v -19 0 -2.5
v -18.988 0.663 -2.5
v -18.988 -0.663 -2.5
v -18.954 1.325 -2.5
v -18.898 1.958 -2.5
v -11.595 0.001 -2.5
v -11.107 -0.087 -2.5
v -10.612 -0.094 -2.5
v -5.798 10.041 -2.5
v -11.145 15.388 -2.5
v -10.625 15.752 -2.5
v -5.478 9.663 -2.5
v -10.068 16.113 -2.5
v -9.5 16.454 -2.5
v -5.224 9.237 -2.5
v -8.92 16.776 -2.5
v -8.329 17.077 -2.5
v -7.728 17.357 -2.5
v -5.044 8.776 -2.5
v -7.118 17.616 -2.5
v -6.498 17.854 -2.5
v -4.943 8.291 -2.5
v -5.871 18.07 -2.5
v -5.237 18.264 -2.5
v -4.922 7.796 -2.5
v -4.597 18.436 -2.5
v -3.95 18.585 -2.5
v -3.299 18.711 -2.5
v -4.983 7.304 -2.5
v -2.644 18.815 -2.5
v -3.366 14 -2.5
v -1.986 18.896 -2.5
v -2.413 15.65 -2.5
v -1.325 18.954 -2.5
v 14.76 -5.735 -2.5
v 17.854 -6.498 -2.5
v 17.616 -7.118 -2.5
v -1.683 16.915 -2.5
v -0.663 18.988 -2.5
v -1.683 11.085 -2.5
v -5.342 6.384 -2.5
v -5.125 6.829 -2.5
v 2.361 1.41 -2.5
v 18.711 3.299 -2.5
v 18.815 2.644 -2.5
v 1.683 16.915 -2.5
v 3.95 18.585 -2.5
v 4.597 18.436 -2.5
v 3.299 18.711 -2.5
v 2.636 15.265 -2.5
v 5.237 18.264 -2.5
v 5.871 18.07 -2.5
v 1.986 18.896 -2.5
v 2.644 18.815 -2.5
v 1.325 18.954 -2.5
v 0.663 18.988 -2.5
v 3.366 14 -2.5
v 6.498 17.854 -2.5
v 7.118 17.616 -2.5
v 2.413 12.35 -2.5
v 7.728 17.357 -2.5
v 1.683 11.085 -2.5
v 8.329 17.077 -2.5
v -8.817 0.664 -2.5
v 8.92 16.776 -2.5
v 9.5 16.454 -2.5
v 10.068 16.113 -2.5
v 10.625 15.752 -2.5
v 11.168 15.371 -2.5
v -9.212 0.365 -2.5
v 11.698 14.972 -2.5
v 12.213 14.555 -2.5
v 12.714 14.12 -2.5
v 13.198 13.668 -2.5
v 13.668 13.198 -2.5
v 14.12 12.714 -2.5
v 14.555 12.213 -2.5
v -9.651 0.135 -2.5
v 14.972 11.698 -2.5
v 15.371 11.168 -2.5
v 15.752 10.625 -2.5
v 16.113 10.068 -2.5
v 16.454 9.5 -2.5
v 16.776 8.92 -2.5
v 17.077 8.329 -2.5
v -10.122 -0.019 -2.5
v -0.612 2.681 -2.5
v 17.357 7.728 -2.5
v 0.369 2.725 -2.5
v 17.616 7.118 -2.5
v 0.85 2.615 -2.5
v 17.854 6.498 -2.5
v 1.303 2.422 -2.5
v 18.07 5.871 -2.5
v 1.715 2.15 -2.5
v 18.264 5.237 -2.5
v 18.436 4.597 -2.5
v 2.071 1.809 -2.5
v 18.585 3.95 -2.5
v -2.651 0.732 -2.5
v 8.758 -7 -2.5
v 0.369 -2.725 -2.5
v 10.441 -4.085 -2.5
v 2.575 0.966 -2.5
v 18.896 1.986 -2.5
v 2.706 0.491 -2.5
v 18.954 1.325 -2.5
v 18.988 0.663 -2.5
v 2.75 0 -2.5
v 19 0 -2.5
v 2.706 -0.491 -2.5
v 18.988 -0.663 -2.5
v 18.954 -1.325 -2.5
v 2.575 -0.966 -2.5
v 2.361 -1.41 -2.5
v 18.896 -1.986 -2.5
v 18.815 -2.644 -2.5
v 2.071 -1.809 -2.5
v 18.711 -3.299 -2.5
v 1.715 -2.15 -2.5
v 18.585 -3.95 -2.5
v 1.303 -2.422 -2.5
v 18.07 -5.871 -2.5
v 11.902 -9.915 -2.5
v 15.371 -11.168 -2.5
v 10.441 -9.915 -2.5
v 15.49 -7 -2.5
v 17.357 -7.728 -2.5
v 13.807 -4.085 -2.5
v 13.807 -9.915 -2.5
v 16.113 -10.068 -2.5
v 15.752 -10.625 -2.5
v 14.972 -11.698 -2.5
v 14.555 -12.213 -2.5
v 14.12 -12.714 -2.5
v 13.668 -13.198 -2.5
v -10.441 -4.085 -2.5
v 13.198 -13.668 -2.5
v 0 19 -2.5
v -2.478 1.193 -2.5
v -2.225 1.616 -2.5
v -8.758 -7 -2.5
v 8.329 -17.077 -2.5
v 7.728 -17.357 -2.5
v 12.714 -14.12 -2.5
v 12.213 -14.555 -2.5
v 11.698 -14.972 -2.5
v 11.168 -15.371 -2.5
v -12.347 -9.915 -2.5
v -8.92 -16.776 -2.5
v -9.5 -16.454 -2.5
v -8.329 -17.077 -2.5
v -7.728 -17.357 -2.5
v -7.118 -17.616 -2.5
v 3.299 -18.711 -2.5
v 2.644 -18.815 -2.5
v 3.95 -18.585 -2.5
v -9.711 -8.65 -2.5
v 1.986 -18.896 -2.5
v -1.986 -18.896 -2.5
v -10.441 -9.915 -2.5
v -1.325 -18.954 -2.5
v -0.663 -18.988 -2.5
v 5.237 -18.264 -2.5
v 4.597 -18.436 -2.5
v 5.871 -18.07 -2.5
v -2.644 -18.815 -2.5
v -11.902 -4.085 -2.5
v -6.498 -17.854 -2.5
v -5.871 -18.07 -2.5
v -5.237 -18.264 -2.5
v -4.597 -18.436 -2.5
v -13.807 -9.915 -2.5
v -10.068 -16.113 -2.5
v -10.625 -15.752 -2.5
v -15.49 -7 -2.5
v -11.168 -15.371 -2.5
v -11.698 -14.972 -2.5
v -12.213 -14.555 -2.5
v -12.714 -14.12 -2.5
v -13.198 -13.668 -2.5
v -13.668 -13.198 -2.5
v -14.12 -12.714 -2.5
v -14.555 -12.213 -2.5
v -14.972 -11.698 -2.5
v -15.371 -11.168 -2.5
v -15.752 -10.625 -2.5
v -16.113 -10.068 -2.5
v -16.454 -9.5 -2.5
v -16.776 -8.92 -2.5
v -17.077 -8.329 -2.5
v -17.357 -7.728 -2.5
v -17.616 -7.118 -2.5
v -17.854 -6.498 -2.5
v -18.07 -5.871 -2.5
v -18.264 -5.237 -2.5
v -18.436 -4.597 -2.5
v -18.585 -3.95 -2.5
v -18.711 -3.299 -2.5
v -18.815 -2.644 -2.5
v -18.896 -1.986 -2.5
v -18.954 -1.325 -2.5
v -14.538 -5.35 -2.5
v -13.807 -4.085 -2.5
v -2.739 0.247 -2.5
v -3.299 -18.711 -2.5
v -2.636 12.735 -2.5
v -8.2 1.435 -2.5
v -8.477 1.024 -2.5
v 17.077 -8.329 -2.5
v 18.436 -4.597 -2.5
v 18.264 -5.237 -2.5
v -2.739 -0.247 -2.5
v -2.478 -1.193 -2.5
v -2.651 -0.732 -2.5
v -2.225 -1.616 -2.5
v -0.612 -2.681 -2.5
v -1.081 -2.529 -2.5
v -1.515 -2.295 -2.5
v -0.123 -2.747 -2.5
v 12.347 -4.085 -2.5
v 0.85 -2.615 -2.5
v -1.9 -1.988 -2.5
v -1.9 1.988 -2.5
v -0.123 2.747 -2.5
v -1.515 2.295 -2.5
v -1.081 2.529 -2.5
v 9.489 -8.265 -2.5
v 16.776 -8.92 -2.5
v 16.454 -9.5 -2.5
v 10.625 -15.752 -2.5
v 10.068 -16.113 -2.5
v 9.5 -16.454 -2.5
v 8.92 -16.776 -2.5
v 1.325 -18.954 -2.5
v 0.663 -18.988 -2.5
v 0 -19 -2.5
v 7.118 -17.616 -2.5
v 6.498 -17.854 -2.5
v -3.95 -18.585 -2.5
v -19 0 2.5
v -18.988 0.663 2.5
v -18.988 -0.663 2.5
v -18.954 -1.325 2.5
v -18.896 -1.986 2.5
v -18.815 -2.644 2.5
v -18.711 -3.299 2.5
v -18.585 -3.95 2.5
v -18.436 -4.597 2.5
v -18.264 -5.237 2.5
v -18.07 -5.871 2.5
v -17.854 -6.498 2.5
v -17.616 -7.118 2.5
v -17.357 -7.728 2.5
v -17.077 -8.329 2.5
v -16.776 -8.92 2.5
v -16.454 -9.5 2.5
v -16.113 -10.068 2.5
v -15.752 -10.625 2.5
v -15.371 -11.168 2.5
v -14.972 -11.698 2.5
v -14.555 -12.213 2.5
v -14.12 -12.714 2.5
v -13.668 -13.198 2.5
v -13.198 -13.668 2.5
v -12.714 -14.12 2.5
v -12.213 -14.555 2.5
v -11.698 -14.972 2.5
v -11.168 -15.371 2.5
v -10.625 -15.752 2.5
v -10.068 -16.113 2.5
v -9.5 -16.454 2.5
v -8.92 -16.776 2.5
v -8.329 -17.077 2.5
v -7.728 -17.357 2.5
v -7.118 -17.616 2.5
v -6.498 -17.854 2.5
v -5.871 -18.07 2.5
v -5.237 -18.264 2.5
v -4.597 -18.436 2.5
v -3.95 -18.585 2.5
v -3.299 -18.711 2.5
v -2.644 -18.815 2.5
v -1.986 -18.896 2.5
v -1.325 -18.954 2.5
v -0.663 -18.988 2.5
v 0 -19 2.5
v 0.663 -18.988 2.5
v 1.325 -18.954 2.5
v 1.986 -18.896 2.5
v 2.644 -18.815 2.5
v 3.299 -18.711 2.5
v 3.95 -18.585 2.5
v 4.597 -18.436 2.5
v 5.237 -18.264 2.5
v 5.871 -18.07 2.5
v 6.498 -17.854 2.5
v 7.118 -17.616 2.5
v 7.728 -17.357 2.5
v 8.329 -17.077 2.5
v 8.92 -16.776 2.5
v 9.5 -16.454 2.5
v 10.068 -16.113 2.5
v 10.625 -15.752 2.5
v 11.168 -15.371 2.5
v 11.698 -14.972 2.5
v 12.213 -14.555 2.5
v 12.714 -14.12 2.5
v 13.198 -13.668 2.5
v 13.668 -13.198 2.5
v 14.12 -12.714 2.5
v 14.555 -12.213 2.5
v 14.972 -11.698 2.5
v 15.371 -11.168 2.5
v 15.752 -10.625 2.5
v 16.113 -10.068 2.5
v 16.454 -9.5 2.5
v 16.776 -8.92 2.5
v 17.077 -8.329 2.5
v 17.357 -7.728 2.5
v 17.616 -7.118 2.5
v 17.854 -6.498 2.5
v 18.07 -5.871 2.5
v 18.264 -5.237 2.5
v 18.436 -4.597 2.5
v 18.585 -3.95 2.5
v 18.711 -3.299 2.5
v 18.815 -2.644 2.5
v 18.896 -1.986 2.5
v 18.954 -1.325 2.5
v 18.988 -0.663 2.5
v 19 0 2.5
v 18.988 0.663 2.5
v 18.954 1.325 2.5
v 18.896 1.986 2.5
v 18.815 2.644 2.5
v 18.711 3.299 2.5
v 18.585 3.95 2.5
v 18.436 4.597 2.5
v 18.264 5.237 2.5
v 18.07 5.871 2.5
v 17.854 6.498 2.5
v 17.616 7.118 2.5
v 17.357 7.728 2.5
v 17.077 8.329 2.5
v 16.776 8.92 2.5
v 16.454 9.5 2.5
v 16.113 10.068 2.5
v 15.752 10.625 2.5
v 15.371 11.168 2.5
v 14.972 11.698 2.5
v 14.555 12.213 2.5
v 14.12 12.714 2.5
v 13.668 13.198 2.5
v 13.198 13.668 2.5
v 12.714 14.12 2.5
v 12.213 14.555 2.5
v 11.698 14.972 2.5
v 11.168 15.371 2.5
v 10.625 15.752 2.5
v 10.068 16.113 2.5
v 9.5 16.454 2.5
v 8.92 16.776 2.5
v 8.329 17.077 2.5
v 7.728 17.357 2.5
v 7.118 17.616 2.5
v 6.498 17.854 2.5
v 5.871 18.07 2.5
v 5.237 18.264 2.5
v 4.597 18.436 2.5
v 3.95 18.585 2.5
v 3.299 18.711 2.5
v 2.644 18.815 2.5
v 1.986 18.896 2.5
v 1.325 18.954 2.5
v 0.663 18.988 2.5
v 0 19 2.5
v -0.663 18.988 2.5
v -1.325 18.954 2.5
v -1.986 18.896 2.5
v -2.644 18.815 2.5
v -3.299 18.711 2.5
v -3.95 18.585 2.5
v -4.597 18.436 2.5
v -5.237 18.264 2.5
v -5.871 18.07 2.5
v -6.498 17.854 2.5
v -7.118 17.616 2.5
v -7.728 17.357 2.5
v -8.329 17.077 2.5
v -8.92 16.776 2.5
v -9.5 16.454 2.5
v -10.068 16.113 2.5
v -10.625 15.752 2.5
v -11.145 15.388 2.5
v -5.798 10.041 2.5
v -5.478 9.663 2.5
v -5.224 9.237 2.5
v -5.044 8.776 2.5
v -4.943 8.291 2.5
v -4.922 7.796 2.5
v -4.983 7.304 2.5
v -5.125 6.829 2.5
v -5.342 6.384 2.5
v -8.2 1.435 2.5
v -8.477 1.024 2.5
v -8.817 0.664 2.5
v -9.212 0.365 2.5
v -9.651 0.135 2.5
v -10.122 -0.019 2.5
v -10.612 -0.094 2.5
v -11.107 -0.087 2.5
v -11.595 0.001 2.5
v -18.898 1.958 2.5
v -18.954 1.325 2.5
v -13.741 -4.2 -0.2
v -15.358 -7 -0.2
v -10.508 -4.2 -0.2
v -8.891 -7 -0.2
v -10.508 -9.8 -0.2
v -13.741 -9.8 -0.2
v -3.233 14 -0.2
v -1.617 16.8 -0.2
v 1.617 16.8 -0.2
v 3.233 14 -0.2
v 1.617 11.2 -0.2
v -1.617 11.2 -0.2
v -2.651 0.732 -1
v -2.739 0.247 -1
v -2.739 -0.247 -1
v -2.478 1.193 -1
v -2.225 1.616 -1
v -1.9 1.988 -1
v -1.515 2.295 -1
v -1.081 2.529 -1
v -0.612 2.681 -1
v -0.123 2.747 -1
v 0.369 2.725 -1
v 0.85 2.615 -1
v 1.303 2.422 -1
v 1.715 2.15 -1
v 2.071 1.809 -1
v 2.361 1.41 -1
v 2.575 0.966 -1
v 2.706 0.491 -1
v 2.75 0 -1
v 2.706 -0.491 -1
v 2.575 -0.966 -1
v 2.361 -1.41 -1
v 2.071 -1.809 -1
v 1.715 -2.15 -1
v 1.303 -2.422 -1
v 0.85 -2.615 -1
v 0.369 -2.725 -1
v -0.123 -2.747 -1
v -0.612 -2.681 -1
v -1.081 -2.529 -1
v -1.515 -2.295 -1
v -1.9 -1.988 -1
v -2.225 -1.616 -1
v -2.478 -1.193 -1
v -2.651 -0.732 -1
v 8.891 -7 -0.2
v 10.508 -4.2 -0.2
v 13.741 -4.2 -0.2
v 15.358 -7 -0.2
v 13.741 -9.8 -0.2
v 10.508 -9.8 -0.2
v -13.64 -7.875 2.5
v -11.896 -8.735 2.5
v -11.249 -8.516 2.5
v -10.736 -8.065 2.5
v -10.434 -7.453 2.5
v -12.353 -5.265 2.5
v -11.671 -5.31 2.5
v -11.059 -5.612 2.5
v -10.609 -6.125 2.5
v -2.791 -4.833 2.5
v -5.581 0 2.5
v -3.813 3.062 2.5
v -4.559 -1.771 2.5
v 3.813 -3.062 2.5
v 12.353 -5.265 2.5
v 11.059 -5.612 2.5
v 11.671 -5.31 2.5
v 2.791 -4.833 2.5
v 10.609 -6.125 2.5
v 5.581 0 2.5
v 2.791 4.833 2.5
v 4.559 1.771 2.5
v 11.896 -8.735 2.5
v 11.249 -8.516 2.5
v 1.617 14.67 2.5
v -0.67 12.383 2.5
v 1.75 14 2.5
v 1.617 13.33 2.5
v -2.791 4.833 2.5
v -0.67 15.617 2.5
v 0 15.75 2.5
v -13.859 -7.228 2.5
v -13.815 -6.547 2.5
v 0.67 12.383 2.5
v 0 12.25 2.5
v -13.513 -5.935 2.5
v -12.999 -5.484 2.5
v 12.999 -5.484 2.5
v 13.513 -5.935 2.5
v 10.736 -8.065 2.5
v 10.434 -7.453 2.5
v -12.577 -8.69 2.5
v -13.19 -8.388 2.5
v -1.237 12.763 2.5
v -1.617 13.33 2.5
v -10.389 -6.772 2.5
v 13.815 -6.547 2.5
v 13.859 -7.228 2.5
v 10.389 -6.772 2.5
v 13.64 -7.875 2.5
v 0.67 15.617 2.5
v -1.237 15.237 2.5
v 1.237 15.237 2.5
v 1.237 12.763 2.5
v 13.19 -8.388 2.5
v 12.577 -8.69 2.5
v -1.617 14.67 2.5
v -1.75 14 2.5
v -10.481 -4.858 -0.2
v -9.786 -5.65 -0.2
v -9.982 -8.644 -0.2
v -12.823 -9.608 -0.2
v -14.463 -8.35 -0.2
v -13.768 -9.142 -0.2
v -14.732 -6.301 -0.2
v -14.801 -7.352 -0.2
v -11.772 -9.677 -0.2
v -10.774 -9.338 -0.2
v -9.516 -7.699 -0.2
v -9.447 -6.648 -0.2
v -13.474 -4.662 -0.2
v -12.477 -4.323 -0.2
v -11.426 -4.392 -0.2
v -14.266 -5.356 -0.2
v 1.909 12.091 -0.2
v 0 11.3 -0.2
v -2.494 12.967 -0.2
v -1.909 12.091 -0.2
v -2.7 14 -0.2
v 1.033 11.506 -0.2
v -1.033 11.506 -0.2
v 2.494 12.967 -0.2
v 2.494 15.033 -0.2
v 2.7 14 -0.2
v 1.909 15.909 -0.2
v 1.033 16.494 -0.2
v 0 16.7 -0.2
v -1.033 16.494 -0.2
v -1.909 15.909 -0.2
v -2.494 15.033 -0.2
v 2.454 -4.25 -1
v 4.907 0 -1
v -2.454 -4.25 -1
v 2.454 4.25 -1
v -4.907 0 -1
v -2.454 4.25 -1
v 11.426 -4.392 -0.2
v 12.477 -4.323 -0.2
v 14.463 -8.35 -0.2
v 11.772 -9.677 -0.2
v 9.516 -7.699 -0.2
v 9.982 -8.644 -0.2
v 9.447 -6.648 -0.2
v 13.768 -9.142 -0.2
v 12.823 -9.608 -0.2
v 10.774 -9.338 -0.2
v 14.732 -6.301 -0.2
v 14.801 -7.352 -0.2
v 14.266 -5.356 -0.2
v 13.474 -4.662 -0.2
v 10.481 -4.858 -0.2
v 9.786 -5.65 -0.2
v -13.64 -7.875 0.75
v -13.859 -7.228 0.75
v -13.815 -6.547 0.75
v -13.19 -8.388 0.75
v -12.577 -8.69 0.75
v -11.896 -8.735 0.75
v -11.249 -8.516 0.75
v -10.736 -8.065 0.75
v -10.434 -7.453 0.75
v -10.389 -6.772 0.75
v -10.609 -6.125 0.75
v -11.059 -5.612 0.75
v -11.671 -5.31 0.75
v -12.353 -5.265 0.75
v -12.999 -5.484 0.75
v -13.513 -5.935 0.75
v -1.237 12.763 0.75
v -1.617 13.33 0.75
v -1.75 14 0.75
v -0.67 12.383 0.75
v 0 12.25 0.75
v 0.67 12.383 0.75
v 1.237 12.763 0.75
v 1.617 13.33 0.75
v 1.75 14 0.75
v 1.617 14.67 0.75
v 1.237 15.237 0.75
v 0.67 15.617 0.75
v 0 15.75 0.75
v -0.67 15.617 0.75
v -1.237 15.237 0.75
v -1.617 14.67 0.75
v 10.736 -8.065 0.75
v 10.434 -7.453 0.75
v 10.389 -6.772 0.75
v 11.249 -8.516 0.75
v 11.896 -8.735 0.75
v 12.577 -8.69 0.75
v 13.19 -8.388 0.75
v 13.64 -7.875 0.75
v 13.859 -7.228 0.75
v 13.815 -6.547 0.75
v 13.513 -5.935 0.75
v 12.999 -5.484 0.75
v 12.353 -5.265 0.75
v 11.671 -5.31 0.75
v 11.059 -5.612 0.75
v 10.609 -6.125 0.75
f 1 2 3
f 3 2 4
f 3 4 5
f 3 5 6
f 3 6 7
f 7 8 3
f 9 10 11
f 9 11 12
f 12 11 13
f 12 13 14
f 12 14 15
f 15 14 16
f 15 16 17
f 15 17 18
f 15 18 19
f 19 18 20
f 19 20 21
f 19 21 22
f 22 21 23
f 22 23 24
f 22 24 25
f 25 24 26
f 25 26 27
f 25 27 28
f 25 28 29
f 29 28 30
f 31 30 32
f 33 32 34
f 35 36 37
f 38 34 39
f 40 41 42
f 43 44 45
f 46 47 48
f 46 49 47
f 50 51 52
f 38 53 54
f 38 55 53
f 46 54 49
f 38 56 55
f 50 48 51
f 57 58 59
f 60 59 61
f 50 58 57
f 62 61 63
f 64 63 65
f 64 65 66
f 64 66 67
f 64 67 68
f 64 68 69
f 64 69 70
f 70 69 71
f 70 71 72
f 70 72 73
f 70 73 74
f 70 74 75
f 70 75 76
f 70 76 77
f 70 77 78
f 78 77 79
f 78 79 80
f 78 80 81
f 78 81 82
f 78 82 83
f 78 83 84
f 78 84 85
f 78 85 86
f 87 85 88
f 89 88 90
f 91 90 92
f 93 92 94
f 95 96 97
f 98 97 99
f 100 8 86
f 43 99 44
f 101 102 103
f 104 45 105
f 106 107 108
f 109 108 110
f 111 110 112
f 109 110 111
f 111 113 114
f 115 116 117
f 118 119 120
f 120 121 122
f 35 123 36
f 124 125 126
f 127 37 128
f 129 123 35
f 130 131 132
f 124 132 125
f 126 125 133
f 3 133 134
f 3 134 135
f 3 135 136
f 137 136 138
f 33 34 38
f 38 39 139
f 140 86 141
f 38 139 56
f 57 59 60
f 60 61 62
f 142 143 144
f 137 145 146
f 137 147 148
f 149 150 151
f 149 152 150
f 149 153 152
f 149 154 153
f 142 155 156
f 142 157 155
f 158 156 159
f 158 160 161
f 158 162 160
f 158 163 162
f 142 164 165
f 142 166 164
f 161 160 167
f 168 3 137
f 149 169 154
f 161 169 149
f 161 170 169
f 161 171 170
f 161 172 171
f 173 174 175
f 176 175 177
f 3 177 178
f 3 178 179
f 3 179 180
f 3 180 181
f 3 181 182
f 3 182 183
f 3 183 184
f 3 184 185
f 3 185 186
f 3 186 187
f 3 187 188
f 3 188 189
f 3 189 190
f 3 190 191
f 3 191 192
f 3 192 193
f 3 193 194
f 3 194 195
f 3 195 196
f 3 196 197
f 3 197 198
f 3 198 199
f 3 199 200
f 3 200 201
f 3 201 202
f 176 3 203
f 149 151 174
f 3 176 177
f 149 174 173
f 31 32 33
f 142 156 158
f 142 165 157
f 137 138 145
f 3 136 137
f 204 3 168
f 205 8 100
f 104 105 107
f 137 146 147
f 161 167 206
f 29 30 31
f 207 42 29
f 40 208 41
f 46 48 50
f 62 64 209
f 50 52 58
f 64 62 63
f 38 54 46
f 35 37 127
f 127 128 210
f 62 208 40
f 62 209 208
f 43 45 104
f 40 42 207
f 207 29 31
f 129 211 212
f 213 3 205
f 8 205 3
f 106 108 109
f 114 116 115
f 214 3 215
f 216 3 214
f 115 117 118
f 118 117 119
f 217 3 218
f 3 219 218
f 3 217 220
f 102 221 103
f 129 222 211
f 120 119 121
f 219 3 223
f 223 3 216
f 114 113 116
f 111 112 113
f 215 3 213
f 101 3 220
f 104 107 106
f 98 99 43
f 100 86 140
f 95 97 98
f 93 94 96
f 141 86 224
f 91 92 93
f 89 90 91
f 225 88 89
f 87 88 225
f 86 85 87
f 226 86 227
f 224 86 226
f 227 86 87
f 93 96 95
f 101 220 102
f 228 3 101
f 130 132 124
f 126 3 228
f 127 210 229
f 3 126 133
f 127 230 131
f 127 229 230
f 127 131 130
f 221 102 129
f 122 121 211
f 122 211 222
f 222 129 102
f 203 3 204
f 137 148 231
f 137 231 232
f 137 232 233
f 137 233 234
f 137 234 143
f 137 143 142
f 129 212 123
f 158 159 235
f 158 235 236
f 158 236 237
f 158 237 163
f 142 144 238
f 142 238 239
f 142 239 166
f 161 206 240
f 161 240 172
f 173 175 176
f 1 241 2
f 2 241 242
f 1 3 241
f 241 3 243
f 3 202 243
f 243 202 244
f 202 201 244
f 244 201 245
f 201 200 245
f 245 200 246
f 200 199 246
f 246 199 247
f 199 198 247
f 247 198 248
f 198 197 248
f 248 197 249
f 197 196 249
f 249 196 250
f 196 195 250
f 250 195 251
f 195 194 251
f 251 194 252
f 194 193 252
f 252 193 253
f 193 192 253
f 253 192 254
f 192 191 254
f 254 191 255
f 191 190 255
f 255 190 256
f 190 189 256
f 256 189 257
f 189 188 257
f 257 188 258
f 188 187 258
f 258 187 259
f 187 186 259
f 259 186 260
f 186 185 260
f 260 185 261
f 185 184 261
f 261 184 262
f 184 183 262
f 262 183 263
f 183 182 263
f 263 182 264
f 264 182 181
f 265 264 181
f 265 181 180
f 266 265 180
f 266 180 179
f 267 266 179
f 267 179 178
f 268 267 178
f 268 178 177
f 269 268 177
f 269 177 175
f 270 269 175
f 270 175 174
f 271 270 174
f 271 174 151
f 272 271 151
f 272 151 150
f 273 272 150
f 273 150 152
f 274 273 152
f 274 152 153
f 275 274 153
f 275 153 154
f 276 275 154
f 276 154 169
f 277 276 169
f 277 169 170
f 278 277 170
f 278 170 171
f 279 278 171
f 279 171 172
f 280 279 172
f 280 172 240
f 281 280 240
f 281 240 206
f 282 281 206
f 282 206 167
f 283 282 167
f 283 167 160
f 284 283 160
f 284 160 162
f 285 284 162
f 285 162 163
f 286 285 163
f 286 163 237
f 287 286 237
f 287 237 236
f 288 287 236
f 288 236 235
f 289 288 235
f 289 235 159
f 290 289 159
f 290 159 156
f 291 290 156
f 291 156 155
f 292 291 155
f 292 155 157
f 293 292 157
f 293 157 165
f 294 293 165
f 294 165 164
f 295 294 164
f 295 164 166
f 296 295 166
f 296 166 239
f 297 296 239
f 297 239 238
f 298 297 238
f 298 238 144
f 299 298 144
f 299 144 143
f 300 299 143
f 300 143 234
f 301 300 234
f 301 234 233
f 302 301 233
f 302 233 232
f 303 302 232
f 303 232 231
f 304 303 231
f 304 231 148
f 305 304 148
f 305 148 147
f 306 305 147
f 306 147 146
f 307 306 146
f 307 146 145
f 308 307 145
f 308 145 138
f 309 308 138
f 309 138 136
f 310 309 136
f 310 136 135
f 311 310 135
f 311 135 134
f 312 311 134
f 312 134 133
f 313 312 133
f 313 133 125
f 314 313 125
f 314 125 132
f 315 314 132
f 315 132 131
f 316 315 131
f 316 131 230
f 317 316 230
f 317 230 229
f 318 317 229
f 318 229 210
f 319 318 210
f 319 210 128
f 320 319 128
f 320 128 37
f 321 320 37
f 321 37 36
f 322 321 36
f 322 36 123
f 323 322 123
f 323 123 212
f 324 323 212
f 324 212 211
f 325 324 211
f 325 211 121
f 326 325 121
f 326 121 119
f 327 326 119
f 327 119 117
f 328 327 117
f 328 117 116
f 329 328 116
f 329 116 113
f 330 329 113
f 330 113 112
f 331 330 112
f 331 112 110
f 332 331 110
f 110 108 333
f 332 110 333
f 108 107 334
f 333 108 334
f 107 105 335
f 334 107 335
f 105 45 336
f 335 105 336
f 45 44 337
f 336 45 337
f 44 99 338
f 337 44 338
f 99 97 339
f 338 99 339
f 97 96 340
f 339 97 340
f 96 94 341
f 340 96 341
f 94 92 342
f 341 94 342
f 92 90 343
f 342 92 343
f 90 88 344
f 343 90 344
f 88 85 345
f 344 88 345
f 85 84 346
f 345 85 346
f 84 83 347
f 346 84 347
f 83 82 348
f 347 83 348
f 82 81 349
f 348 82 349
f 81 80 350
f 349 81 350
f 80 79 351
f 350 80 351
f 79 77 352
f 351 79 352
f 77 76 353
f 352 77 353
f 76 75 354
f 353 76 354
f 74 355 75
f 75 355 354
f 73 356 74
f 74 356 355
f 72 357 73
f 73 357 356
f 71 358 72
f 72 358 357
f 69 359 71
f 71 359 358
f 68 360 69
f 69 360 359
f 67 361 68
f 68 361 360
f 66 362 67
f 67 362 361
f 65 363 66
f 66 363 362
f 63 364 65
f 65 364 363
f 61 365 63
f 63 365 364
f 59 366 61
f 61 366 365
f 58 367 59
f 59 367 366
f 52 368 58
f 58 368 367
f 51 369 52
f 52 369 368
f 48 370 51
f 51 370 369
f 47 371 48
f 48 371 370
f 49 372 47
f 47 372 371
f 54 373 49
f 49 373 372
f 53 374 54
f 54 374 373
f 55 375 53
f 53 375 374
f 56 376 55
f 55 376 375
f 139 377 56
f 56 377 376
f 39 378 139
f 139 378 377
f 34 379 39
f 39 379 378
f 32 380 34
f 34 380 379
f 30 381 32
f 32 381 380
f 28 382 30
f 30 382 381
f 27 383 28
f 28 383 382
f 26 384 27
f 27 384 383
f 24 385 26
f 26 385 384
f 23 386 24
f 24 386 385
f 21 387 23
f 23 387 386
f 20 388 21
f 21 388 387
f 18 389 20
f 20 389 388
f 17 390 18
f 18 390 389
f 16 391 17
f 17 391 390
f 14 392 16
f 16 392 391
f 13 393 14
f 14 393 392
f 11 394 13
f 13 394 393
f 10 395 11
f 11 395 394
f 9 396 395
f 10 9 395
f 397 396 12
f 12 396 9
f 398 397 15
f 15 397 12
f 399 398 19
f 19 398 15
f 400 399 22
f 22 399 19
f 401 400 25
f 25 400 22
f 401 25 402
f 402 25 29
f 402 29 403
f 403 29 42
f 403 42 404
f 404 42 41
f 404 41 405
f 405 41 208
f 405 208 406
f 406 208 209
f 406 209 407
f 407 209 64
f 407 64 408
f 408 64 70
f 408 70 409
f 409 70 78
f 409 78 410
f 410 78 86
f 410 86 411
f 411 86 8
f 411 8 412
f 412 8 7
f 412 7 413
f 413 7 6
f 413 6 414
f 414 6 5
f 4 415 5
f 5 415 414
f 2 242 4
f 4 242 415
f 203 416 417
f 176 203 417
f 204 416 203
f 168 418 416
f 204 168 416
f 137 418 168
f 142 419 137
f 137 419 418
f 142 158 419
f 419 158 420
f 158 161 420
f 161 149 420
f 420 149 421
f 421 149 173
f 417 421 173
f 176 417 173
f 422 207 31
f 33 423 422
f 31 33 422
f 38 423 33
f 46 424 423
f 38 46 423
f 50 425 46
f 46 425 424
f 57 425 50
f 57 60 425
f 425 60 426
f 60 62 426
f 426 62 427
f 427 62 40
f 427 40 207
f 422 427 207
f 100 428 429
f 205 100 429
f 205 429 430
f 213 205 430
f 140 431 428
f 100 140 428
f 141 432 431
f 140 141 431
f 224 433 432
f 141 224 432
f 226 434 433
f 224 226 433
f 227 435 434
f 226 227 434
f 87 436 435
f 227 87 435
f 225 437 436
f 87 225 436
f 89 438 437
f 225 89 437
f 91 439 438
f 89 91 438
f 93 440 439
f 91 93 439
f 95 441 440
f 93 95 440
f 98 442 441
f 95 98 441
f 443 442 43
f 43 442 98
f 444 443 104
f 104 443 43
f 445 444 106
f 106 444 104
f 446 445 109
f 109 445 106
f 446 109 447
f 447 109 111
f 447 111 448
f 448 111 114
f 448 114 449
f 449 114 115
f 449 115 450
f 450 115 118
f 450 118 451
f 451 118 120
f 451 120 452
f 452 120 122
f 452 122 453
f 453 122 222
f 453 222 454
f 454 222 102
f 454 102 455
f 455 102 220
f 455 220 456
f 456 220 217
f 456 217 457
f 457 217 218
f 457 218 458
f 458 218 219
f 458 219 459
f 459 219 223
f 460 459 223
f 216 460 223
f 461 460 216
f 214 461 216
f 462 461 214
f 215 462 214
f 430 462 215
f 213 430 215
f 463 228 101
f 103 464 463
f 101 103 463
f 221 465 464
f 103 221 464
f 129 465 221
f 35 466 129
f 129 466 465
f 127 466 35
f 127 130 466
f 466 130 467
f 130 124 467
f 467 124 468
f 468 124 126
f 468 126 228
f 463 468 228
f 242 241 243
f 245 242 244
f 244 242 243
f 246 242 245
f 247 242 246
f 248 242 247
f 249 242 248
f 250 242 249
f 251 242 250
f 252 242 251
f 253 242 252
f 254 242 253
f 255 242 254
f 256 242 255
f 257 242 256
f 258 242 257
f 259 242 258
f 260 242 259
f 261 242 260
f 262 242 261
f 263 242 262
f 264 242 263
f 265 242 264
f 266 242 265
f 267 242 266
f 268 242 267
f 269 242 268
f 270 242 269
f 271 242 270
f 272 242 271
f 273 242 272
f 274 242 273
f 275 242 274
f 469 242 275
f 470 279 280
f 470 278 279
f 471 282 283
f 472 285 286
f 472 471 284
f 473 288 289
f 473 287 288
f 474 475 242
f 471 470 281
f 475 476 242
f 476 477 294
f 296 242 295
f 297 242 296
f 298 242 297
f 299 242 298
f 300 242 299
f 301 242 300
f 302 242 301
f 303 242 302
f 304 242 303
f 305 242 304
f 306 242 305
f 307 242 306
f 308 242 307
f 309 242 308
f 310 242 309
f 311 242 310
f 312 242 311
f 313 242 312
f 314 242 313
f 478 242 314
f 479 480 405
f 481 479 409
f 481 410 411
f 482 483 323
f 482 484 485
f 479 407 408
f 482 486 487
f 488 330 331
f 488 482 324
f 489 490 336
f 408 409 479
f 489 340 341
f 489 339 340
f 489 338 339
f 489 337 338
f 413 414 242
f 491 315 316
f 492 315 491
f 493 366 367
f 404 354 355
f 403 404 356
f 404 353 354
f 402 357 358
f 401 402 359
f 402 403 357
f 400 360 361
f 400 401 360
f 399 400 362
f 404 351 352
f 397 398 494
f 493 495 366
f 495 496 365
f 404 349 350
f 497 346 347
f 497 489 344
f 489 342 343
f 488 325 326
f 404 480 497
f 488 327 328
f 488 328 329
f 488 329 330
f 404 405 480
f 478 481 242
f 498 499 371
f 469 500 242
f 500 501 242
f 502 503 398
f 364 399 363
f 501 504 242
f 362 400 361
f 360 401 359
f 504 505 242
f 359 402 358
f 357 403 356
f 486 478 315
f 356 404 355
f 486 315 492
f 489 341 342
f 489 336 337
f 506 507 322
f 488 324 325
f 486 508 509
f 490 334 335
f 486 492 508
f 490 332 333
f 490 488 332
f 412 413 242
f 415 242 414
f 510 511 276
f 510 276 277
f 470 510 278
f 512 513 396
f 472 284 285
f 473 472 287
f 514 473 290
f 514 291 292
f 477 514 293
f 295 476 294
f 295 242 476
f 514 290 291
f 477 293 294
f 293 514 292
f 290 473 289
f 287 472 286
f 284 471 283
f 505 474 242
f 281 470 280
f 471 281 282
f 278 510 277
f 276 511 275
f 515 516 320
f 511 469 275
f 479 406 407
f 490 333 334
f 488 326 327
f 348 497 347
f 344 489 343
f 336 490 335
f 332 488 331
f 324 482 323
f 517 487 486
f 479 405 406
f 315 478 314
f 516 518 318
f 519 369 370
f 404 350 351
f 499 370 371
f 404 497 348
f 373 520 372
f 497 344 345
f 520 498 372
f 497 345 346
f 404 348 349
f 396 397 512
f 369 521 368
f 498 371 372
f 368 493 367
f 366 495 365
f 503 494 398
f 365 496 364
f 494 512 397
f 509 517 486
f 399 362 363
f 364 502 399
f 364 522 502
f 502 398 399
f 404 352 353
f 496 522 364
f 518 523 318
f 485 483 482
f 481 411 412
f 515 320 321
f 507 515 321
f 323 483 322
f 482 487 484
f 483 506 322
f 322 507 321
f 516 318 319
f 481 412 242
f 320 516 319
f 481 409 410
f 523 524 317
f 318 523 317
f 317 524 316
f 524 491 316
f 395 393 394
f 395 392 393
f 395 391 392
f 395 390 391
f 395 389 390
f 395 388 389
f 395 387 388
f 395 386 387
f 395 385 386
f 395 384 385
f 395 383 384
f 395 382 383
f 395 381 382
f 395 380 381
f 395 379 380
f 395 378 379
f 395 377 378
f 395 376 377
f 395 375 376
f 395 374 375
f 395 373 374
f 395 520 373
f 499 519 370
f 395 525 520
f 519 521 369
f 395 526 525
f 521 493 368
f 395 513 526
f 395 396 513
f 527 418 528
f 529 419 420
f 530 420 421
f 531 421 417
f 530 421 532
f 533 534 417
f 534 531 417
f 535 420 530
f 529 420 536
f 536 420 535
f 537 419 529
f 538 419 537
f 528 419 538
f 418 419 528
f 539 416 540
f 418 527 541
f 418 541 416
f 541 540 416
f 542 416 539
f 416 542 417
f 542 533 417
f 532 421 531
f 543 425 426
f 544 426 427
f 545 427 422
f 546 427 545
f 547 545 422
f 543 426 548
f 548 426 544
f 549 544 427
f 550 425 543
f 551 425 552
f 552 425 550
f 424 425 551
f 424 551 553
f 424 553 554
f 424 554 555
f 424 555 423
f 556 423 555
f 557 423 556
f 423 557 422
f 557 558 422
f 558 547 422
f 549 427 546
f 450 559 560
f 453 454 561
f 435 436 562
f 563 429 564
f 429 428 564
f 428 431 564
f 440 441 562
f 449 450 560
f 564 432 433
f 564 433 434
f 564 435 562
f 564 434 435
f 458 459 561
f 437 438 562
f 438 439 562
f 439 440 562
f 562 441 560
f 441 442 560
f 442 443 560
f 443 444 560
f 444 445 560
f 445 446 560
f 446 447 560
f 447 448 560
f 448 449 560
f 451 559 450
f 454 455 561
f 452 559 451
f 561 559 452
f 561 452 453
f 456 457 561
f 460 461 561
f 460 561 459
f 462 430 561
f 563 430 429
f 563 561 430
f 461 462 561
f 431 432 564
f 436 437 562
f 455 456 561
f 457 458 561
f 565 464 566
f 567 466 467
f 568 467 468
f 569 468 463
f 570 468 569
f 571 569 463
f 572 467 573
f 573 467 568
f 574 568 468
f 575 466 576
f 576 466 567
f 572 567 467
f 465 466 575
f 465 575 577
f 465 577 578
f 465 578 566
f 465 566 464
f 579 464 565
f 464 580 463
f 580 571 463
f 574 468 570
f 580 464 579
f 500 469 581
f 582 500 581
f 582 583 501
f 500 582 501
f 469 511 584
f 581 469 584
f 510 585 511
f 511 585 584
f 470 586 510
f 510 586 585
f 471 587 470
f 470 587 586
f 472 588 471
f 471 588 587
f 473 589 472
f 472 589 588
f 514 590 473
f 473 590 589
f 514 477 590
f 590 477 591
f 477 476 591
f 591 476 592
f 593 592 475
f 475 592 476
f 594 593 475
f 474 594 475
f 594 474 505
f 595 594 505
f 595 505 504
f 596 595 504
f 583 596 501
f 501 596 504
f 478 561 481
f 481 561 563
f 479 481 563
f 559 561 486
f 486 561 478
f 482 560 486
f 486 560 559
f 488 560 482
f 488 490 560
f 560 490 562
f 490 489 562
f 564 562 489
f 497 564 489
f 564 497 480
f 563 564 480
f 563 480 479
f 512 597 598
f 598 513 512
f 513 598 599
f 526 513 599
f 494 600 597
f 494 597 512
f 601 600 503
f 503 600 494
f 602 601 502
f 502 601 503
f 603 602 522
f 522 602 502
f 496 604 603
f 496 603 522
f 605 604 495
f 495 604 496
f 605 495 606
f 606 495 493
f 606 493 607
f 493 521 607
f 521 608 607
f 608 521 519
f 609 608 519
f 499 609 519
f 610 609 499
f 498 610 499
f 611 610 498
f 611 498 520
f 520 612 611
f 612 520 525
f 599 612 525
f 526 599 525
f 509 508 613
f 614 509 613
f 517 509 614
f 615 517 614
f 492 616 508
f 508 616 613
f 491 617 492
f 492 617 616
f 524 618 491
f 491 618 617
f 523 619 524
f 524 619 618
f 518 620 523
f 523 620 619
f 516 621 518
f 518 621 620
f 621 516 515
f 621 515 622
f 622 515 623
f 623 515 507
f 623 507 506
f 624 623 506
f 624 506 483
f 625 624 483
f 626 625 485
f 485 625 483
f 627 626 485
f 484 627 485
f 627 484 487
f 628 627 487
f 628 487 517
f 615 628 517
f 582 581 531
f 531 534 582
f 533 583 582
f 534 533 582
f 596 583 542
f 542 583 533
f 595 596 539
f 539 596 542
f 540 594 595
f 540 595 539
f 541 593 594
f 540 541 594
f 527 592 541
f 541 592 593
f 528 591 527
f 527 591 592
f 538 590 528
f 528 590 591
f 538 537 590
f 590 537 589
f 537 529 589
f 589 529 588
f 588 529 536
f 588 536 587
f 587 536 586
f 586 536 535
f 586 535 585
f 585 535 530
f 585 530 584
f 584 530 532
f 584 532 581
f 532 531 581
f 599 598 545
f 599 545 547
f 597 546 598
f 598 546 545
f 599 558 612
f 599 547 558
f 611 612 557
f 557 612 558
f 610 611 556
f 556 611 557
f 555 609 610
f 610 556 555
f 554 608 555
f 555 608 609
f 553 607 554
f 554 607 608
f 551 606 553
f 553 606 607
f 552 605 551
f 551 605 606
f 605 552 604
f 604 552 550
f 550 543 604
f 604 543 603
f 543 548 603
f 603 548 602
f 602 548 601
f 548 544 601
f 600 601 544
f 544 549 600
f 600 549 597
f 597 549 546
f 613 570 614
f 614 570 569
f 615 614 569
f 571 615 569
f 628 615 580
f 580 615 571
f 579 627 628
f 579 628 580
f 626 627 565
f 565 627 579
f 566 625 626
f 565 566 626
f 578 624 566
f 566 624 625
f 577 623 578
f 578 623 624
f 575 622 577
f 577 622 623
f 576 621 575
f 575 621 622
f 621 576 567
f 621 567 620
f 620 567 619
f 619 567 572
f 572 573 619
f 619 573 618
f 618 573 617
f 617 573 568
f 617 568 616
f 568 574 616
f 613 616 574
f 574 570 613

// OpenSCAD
// file: ../library/udf.scad
//User Defined Features

//"THE BEER-WARE LICENSE" (Revision 42):
//<https://github.com/njprossi> wrote this file. As long as you retain this notice you
//can do whatever you want with this stuff. If we meet some day, and you think
//this stuff is worth it, you can buy me a beer in return.
//Nicolas Rossi

//Currently only for M3

nh=2.8;		//Nut height
ns=5.6;		//Nut 
sd=3.5;		//Screw main dia
shd=5.5;		//Screw head dia
shh=3.5;		//Screw head height

dr=1.1;		//Draft %

$fn=16;

module nut_well(length,position,height,angle,counterbore=false) {
	union() {
		translate([0,0,position+nh/2]) rotate([0,90,90+angle]) hull() {
			rotate([0,90,0]) cylinder(h=nh,r=ns/(sqrt(3)),center=true,$fn=6);
			translate([0,0,height+1]) cube([nh*dr,ns*dr,1],true);
		}
		reprap_hole(sd,length,true);
	}
	if (counterbore==true) counterbore(shh,shd);
}

module nut_well_2(length,distance,height,angle,counterbore=false) {
	union() {
		translate([0,0,-distance/2])reprap_hole(sd,distance+2,false);
		rotate([0,0,angle]) hull() for(a=[0,180]) rotate([0,a,0]) translate([0,0,-distance/2+length-nh]) rotate([0,0,90]) cylinder(h=nh,r1=ns/(sqrt(3)),r2=ns*dr/(sqrt(3)),center=false,$fn=6);
		rotate([0,0,angle]) translate([0,height/2,0]) cube([ns*dr,height,distance-2*length],true);
	}
	if (counterbore==true) counterbore(shh,shd);
}

module nut_cutout(length,angle,counterbore=false){
	reprap_hole(sd,length-1,false);
	translate([0,0,length]) rotate([0,0,90+angle]) cylinder(h=nh*2,r1=ns/(sqrt(3)),r2=ns*dr/(sqrt(3)),center=true,$fn=6);
	if (counterbore==true) counterbore(shh,shd);
}
module nut_cutout_2(length,angle,counterbore=false,overhang=false){
	translate([0,0,length/2-1]) cylinder(h=length+2, r=sd/2, center=true);
	translate([0,0,length]) rotate([0,0,90+angle]) cylinder(h=nh*2, r2=ns*dr/sqrt(3), r1=ns/sqrt(3), center = true,$fn=6);
	if (overhang==true) translate([0,0,length-nh-ns/4+.1]) cylinder(h=ns/2, r2=ns/2, r1=0, center = true);
	if (counterbore==true) counterbore(shh,shd);
}

module counterbore(h,d){
	translate([0,0,-h]) cylinder(h=h*2,r1=(d*dr)/2,r2=d/2,center=true,$fn=16);
}

module reprap_hole(diameter,length,sphere=false) {
		translate([0,0,length/2-1]) hull(){
			cylinder(h=length+2,r=diameter/2,center=true,$fn=16);
			translate([0,0,-length/2-1]) rotate([90,0,135]) cube([diameter/2,length+2,diameter/2],false);
			if (sphere==true) translate([0,0,length/2+1]) sphere(r=diameter/2,$fn=16);
		}
}

/* Test
difference() {
	translate([10,0,0])cube([20,10,10],true);
	nut_well(12,5,5,0);
	nut_cutout(12);
}
*/


translate([-10,0,5]) cube([5,5,10],true);
nut_well(10,6,5,0,true);
translate([10,0,0]) nut_well_2(10,40,5,15,false);
translate([20,0,0]) nut_cutout(10,0,true);
translate([30,0,0]) nut_cutout_2(10,0,true,true);
translate([40,0,0]) reprap_hole(5,10,true);
// file: ../configuration.scad
$fa = 2;
$fs = 0.5;

motor_end_height=44;
idler_end_height=28;
carriage_height=13.8;
platform_thickness=10;
platform_fix_dia=28;
platform_dia=38;

bearing_diameter=16;
bearing_dia_clearence=0.5;
bearing_free_dia_clearence=0.8;

hotend_diameter=16.4;
hotend_groove_dia=12;

// Frames

// Places mounting holes for the controller
// 33 = RAMPS 1.3 (Power outputs: Extruder, Bed, Fan)
// 34 = RAMPS 1.3 (Power outputs: Extruder0, Extruder1, Bed)
// 35 = RAMPS 1.3 (Power outputs: Extruder, Fan, Fan)
// 70 = Megatronics
// 701 = Megatronics 2.0

motherboard=35;

frame_thickness=8;

// Distance from motor axle to idler axle
// Calculated regarding length of the HTD3M closed belt 
belt_tooth=354;
spacing = round(((belt_tooth*3) - 3.14159 * 24.83) / 2);

rod_length=spacing+55;
rod_diameter=8;
//platform_hinge_offset=25;
//carriage_hinge_offset=17;

printbed_diameter=170;	//printable aera
printbed_thickness=4;		// used for rendering and approximating build volume


//corner_radius=12;
//frame_radius=(tower_radius-rod_diameter/2-corner_radius)/cos(30);

ball_link_distance=40;//55;
ball_offset=6.5;
ball_distance=ball_link_distance-2*ball_offset;
ball_angle=25;

// Delta Settings

delta_smooth_rod_offset=139.5;//140 - 152 floor(printbed_diameter/(2*sin(ball_angle))-printbed_diameter/2+delta_effector_offset+delta_carriage_offset)
delta_effector_offset=18;
delta_carriage_offset=18;
delta_diagonal_rod=ceil(max(printbed_diameter/2+delta_smooth_rod_offset-delta_effector_offset-delta_carriage_offset,printbed_diameter/(2*sin(ball_angle))));
//|-> 202
delta_radius=(delta_smooth_rod_offset-delta_effector_offset-delta_carriage_offset);

diagonal_rod_length=delta_diagonal_rod-2*8;//165
diagonal_rod_diameter=3;
diagonal_rod_length_lost=(printbed_diameter/(2*sin(ball_angle)))-(printbed_diameter/2+delta_smooth_rod_offset-delta_effector_offset-delta_carriage_offset);

diagonal_rod_angle=acos(delta_radius/delta_diagonal_rod);

echo_result=true;

carriage_altitude=sqrt(pow(delta_diagonal_rod,2)-pow(delta_radius,2));



if(echo_result) {
	echo("printbed_diameter",printbed_diameter);
	echo("delta_diagonal_rod",delta_diagonal_rod);
	echo("diagonal_rod_length",diagonal_rod_length);
	echo("delta_effector_offset",delta_effector_offset);
	echo("delta_carriage_offset",delta_carriage_offset);
	echo("delta_radius",delta_radius);
	echo("diagonal_rod_angle",diagonal_rod_angle);
	echo("carriage_altitude",carriage_altitude);
	echo("diagonal_rod_length_lost",diagonal_rod_length_lost);
	echo("delta_smooth_rod_offset_optimum",printbed_diameter/(2*sin(ball_angle))-printbed_diameter/2+delta_effector_offset+delta_carriage_offset);
	echo("rod_length",rod_length);
}
// main file
include <../configuration.scad>
use <../library/udf.scad>

module bowden_holder() {
	difference() {
		union() {
			cylinder(5,platform_dia/2,platform_dia/2,true);
			//translate([0,0,2.5]) cylinder(3,(hotend_diameter+2)/2,hotend_diameter/2,false);
		}
		union() {
			translate([0,0,-1]) {
					cylinder(h=20,r=5.5/2,center=true);
					cylinder(h=6,r1=8.5/sqrt(3),r2=10.5/sqrt(3),center=false,$fn=6);
			}
			//translate([0,0,2.5]) cylinder(6,(hotend_diameter-2)/2,(hotend_diameter-2)/2,false);
			translate([0,0,2]) for (a = [1:3]){
				rotate([0,180,a*360/3]) translate([0,platform_fix_dia/2,0]) nut_cutout_2(5,90,false,true);
			}
			hull()for (a=[45,75]) rotate([0,0,a]) {
				for (y=[hotend_diameter/2+3,platform_dia/2]) translate([0,y,0]) cylinder(20,6/2,6/2,true);
			}
		}
	}
}

bowden_holder();
